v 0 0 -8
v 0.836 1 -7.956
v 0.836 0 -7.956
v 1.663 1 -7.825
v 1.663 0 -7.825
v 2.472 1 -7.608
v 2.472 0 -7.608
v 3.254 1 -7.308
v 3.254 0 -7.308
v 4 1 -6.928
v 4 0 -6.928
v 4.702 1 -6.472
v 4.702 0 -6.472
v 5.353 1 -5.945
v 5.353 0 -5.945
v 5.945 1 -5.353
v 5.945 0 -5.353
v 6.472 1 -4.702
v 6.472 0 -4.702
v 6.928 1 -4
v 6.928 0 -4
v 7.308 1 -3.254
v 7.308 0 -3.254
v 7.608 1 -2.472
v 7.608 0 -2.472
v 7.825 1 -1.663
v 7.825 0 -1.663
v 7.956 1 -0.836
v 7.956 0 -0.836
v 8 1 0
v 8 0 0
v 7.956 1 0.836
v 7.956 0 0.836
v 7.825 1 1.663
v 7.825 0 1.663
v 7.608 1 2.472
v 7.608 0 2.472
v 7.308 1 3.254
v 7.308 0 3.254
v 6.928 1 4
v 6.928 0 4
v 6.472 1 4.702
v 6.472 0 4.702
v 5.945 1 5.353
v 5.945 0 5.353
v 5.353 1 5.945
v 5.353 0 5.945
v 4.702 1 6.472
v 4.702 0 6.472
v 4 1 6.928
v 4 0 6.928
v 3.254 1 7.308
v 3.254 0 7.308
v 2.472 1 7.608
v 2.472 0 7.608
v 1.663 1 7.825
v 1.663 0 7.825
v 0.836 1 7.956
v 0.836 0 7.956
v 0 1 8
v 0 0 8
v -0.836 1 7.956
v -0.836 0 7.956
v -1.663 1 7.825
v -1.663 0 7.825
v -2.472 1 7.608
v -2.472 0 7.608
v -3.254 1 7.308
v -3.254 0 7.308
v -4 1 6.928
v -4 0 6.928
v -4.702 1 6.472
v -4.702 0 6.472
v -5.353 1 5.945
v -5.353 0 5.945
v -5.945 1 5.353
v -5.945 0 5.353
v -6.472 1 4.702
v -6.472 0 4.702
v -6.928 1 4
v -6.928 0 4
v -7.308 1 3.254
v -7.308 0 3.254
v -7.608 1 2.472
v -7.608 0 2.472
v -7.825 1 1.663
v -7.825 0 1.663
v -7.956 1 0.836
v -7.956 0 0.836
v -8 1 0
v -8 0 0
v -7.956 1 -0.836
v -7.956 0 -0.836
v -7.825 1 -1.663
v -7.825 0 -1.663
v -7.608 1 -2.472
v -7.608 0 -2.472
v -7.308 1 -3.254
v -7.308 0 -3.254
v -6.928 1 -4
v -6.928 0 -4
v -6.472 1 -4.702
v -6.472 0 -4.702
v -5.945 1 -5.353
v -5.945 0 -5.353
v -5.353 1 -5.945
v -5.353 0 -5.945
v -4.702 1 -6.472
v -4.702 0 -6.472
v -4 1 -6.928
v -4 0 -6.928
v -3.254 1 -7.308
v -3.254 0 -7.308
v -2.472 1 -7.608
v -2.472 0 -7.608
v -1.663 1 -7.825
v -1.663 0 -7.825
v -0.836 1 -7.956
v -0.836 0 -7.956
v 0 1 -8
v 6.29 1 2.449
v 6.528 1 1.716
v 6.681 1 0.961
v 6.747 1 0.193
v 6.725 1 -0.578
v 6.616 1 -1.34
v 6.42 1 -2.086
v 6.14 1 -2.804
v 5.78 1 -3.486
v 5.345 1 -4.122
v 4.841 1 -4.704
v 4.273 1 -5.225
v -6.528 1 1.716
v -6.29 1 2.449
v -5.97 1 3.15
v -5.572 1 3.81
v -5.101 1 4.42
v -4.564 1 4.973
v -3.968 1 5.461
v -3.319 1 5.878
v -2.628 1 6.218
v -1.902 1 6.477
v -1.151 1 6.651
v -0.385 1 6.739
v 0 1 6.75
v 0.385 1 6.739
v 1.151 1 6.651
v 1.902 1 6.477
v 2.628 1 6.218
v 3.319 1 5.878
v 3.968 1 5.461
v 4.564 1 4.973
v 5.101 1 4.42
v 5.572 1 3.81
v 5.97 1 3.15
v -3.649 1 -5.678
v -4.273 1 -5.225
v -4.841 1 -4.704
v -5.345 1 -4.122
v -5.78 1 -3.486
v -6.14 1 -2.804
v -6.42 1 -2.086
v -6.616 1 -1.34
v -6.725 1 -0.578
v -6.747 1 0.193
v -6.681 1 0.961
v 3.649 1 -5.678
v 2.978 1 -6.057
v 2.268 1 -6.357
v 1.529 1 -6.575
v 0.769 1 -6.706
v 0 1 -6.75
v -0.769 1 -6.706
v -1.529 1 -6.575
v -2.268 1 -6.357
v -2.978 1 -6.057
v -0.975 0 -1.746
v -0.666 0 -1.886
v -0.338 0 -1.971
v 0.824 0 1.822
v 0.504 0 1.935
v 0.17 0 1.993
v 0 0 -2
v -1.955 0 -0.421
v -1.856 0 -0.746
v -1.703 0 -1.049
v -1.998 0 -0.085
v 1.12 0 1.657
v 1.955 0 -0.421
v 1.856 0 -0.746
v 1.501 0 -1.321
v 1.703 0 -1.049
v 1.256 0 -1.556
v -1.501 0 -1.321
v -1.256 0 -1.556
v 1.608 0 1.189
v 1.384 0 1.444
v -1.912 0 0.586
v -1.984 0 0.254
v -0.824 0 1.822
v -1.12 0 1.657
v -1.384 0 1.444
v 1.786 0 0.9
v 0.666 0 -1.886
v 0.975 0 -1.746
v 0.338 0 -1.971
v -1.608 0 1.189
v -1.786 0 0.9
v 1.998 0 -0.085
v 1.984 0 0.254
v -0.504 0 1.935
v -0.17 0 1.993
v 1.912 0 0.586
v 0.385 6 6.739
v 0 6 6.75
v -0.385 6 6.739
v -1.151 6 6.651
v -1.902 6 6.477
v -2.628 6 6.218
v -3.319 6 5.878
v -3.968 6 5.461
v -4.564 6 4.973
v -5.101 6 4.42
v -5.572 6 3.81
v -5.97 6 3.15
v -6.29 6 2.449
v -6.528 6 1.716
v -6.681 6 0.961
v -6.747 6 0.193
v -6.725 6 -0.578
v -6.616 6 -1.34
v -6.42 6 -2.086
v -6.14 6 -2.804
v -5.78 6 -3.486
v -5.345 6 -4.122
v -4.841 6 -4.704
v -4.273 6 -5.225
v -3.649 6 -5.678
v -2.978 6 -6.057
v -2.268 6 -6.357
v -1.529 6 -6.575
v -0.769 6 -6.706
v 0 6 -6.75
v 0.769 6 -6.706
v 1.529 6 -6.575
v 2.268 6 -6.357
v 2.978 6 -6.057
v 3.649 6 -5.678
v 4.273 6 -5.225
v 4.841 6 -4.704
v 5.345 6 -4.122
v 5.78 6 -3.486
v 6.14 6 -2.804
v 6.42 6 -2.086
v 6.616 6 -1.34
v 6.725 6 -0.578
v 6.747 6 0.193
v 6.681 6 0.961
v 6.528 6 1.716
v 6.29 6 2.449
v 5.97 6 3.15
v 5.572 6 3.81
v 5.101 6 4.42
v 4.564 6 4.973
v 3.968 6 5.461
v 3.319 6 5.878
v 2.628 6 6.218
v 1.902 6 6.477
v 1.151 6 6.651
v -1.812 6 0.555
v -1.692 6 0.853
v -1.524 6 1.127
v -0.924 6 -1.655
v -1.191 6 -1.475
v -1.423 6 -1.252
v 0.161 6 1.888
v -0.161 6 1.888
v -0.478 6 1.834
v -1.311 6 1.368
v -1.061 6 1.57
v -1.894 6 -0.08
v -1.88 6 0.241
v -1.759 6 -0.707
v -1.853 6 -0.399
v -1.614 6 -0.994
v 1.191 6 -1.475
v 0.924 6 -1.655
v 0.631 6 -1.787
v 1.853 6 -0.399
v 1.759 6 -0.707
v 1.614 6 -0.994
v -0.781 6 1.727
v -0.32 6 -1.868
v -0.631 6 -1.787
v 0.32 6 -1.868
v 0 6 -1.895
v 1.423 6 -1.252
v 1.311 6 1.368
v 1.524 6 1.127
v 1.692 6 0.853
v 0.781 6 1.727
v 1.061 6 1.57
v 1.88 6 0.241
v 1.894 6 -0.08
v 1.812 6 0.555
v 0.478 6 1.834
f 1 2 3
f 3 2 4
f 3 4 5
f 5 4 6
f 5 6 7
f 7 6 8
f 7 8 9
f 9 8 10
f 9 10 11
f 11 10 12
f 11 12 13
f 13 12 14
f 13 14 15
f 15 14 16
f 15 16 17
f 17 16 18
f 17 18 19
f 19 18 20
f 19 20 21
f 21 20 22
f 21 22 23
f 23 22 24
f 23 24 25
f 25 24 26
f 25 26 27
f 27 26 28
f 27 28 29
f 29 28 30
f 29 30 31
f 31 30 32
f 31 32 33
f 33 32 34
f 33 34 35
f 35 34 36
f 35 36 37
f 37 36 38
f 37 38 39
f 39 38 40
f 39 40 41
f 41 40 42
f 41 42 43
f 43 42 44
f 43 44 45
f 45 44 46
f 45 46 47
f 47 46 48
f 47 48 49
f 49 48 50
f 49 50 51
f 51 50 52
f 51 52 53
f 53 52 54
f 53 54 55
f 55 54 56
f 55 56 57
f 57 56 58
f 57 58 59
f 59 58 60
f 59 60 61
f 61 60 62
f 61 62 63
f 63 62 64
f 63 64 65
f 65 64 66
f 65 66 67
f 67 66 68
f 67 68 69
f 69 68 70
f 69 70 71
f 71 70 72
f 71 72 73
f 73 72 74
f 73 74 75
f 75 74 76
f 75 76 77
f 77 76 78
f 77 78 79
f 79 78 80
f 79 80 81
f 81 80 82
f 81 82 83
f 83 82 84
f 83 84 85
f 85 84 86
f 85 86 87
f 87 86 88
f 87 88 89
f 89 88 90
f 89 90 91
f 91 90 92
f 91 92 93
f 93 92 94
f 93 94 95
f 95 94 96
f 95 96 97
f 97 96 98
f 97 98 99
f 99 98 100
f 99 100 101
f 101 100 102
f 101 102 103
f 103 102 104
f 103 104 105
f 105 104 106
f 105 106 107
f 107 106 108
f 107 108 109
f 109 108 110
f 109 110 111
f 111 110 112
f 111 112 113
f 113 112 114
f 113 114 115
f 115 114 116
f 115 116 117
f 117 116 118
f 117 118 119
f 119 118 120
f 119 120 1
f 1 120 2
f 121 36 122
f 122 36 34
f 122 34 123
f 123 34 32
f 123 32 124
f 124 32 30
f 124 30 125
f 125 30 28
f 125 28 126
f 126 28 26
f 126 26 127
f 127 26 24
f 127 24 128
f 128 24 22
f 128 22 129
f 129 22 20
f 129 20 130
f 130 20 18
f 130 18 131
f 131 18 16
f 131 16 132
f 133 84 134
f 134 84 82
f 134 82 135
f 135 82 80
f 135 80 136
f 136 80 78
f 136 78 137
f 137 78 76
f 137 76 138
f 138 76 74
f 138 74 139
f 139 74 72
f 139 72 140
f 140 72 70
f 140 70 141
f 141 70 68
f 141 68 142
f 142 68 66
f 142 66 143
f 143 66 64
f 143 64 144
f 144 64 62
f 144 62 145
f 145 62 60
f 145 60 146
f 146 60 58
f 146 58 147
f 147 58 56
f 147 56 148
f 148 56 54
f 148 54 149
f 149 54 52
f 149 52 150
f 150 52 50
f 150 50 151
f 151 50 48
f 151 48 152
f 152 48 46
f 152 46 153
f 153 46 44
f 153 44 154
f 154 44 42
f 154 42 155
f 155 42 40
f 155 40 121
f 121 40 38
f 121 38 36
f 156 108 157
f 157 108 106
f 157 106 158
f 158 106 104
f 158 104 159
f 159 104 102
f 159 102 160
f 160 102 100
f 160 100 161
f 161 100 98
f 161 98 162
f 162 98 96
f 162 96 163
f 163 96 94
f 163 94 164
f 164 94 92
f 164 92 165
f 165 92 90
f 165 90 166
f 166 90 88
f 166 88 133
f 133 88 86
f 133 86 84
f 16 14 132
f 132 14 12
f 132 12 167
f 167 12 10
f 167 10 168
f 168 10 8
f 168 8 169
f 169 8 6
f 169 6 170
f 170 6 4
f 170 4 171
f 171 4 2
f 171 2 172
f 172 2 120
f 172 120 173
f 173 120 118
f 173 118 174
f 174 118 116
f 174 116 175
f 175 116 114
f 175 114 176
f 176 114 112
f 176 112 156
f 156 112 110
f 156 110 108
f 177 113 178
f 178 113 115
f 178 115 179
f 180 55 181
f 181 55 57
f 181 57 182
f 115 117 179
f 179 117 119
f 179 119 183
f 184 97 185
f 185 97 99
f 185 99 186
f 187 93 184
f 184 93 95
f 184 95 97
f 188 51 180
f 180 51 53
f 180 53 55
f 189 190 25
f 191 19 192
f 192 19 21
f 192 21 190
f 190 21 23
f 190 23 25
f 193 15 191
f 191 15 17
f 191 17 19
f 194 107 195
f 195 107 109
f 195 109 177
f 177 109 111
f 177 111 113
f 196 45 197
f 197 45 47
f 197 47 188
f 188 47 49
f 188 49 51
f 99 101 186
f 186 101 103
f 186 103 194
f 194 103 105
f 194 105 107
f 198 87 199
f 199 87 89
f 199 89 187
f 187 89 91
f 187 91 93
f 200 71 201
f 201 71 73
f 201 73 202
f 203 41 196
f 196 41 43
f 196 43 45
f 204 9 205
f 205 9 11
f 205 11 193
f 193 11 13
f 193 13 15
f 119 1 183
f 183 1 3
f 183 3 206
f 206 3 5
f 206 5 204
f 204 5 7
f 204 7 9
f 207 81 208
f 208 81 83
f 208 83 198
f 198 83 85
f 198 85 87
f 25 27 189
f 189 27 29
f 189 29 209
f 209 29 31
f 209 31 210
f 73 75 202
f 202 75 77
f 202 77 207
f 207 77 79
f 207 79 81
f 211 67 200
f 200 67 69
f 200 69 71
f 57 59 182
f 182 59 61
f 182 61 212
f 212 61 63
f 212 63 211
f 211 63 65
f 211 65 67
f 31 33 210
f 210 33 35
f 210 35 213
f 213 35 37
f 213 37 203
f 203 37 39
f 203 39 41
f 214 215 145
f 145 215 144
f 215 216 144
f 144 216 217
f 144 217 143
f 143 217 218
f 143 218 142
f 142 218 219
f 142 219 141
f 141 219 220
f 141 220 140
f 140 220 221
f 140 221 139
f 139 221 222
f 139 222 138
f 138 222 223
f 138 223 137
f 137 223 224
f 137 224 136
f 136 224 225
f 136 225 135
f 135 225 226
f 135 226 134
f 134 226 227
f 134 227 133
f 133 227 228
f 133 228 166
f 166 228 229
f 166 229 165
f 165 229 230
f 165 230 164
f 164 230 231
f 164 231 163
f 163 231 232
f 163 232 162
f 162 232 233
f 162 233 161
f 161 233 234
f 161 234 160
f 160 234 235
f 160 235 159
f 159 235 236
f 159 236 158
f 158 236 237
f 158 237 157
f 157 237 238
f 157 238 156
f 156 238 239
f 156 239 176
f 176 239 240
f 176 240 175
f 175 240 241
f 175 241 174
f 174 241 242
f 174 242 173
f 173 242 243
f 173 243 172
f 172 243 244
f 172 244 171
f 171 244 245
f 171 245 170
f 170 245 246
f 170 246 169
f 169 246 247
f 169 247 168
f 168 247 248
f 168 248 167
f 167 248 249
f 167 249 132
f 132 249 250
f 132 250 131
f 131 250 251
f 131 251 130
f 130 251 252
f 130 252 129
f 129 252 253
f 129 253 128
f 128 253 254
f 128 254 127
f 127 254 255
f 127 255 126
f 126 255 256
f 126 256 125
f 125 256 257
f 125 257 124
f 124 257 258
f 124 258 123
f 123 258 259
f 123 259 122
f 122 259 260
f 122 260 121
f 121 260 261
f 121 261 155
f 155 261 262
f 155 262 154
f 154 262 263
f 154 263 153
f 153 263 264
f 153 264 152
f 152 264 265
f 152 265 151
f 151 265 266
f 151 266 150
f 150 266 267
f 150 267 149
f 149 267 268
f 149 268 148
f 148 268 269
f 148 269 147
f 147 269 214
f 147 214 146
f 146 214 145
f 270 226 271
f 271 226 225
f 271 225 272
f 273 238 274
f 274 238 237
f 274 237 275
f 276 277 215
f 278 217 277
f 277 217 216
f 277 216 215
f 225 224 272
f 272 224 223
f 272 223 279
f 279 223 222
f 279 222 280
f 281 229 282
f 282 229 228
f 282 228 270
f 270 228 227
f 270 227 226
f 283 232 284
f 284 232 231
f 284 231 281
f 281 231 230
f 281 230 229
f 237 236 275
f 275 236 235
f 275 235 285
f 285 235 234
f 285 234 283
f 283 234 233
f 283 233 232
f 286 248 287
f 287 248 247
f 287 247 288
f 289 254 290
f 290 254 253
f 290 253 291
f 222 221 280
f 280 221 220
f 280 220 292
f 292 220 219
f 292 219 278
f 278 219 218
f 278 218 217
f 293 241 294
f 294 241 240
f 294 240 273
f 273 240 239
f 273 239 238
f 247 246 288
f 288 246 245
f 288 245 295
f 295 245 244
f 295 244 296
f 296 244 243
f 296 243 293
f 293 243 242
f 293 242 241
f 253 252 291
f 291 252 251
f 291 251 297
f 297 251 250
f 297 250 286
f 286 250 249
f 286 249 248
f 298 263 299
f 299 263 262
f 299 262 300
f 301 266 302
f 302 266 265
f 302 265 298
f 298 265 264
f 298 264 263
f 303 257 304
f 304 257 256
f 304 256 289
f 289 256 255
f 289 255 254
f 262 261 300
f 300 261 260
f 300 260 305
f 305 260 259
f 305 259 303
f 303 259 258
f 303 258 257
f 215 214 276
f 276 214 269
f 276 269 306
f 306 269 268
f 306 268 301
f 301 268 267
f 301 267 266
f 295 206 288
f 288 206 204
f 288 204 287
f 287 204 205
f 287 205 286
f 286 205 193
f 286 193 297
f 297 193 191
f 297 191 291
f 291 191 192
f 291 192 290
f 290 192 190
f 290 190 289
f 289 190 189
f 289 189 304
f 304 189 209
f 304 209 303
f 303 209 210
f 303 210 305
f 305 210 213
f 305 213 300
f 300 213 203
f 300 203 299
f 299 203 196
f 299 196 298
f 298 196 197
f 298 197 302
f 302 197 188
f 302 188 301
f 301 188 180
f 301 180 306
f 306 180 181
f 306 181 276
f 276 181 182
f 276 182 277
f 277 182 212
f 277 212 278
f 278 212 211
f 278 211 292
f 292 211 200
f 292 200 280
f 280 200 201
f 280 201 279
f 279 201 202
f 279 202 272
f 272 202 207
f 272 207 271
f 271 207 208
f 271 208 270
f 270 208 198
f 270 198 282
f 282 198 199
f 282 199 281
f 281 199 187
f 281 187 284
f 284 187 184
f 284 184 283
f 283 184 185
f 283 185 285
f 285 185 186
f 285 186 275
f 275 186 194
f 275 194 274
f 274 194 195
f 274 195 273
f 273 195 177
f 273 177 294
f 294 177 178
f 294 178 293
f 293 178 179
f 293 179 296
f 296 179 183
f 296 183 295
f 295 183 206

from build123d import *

# Parameters (mm, degrees)
SKETCH1_R           = 8
BOSS_EXTRUDE1_DEPTH = 1
SKETCH2_R           = 6.75
BOSS_EXTRUDE2_DEPTH = 5
SKETCH3_R           = 2
CUT_EXTRUDE1_DEPTH  = 13.806248475
CUT_EXTRUDE1_DRAFT  = -1


with BuildPart() as part:
    # Sketch1 → Boss-Extrude1 (new body)
    with BuildSketch(Plane(origin=(0, 0, 0), x_dir=(1, 0, 0), z_dir=(0, 1, 0))):
        with Locations(Location((0, 0, 0), (0, 0, 270))):
            Circle(SKETCH1_R)
    extrude(amount=BOSS_EXTRUDE1_DEPTH)

    # Sketch2 → Boss-Extrude2 (add)
    with BuildSketch(Plane(origin=(0, 1, 0), x_dir=(1, 0, 0), z_dir=(0, 1, 0))):
        with Locations(Location((0, 0, 0), (0, 0, 270))):
            Circle(SKETCH2_R)
    extrude(amount=BOSS_EXTRUDE2_DEPTH)


with BuildPart() as cut_extrude1_tool:
    # Sketch3 → Cut-Extrude1 (with draft: the straight prism first)
    with BuildSketch(Plane.XZ):
        Circle(SKETCH3_R)
    extrude(amount=-CUT_EXTRUDE1_DEPTH)
    # Cut-Extrude1: the draft: its side faces are tilted about the plane it starts from
    cut_extrude1_sides = [cut_extrude1_tool.faces().sort_by_distance(p)[0] for p in [
        (-2, 6.903124237, 0),
    ]]
    draft(cut_extrude1_sides, Plane.XZ, CUT_EXTRUDE1_DRAFT)


with BuildPart() as part_1:
    add(part.part)

    # Cut-Extrude1: cut by cut_extrude1_tool
    add(cut_extrude1_tool.part, mode=Mode.SUBTRACT)


solid = part_1.part
